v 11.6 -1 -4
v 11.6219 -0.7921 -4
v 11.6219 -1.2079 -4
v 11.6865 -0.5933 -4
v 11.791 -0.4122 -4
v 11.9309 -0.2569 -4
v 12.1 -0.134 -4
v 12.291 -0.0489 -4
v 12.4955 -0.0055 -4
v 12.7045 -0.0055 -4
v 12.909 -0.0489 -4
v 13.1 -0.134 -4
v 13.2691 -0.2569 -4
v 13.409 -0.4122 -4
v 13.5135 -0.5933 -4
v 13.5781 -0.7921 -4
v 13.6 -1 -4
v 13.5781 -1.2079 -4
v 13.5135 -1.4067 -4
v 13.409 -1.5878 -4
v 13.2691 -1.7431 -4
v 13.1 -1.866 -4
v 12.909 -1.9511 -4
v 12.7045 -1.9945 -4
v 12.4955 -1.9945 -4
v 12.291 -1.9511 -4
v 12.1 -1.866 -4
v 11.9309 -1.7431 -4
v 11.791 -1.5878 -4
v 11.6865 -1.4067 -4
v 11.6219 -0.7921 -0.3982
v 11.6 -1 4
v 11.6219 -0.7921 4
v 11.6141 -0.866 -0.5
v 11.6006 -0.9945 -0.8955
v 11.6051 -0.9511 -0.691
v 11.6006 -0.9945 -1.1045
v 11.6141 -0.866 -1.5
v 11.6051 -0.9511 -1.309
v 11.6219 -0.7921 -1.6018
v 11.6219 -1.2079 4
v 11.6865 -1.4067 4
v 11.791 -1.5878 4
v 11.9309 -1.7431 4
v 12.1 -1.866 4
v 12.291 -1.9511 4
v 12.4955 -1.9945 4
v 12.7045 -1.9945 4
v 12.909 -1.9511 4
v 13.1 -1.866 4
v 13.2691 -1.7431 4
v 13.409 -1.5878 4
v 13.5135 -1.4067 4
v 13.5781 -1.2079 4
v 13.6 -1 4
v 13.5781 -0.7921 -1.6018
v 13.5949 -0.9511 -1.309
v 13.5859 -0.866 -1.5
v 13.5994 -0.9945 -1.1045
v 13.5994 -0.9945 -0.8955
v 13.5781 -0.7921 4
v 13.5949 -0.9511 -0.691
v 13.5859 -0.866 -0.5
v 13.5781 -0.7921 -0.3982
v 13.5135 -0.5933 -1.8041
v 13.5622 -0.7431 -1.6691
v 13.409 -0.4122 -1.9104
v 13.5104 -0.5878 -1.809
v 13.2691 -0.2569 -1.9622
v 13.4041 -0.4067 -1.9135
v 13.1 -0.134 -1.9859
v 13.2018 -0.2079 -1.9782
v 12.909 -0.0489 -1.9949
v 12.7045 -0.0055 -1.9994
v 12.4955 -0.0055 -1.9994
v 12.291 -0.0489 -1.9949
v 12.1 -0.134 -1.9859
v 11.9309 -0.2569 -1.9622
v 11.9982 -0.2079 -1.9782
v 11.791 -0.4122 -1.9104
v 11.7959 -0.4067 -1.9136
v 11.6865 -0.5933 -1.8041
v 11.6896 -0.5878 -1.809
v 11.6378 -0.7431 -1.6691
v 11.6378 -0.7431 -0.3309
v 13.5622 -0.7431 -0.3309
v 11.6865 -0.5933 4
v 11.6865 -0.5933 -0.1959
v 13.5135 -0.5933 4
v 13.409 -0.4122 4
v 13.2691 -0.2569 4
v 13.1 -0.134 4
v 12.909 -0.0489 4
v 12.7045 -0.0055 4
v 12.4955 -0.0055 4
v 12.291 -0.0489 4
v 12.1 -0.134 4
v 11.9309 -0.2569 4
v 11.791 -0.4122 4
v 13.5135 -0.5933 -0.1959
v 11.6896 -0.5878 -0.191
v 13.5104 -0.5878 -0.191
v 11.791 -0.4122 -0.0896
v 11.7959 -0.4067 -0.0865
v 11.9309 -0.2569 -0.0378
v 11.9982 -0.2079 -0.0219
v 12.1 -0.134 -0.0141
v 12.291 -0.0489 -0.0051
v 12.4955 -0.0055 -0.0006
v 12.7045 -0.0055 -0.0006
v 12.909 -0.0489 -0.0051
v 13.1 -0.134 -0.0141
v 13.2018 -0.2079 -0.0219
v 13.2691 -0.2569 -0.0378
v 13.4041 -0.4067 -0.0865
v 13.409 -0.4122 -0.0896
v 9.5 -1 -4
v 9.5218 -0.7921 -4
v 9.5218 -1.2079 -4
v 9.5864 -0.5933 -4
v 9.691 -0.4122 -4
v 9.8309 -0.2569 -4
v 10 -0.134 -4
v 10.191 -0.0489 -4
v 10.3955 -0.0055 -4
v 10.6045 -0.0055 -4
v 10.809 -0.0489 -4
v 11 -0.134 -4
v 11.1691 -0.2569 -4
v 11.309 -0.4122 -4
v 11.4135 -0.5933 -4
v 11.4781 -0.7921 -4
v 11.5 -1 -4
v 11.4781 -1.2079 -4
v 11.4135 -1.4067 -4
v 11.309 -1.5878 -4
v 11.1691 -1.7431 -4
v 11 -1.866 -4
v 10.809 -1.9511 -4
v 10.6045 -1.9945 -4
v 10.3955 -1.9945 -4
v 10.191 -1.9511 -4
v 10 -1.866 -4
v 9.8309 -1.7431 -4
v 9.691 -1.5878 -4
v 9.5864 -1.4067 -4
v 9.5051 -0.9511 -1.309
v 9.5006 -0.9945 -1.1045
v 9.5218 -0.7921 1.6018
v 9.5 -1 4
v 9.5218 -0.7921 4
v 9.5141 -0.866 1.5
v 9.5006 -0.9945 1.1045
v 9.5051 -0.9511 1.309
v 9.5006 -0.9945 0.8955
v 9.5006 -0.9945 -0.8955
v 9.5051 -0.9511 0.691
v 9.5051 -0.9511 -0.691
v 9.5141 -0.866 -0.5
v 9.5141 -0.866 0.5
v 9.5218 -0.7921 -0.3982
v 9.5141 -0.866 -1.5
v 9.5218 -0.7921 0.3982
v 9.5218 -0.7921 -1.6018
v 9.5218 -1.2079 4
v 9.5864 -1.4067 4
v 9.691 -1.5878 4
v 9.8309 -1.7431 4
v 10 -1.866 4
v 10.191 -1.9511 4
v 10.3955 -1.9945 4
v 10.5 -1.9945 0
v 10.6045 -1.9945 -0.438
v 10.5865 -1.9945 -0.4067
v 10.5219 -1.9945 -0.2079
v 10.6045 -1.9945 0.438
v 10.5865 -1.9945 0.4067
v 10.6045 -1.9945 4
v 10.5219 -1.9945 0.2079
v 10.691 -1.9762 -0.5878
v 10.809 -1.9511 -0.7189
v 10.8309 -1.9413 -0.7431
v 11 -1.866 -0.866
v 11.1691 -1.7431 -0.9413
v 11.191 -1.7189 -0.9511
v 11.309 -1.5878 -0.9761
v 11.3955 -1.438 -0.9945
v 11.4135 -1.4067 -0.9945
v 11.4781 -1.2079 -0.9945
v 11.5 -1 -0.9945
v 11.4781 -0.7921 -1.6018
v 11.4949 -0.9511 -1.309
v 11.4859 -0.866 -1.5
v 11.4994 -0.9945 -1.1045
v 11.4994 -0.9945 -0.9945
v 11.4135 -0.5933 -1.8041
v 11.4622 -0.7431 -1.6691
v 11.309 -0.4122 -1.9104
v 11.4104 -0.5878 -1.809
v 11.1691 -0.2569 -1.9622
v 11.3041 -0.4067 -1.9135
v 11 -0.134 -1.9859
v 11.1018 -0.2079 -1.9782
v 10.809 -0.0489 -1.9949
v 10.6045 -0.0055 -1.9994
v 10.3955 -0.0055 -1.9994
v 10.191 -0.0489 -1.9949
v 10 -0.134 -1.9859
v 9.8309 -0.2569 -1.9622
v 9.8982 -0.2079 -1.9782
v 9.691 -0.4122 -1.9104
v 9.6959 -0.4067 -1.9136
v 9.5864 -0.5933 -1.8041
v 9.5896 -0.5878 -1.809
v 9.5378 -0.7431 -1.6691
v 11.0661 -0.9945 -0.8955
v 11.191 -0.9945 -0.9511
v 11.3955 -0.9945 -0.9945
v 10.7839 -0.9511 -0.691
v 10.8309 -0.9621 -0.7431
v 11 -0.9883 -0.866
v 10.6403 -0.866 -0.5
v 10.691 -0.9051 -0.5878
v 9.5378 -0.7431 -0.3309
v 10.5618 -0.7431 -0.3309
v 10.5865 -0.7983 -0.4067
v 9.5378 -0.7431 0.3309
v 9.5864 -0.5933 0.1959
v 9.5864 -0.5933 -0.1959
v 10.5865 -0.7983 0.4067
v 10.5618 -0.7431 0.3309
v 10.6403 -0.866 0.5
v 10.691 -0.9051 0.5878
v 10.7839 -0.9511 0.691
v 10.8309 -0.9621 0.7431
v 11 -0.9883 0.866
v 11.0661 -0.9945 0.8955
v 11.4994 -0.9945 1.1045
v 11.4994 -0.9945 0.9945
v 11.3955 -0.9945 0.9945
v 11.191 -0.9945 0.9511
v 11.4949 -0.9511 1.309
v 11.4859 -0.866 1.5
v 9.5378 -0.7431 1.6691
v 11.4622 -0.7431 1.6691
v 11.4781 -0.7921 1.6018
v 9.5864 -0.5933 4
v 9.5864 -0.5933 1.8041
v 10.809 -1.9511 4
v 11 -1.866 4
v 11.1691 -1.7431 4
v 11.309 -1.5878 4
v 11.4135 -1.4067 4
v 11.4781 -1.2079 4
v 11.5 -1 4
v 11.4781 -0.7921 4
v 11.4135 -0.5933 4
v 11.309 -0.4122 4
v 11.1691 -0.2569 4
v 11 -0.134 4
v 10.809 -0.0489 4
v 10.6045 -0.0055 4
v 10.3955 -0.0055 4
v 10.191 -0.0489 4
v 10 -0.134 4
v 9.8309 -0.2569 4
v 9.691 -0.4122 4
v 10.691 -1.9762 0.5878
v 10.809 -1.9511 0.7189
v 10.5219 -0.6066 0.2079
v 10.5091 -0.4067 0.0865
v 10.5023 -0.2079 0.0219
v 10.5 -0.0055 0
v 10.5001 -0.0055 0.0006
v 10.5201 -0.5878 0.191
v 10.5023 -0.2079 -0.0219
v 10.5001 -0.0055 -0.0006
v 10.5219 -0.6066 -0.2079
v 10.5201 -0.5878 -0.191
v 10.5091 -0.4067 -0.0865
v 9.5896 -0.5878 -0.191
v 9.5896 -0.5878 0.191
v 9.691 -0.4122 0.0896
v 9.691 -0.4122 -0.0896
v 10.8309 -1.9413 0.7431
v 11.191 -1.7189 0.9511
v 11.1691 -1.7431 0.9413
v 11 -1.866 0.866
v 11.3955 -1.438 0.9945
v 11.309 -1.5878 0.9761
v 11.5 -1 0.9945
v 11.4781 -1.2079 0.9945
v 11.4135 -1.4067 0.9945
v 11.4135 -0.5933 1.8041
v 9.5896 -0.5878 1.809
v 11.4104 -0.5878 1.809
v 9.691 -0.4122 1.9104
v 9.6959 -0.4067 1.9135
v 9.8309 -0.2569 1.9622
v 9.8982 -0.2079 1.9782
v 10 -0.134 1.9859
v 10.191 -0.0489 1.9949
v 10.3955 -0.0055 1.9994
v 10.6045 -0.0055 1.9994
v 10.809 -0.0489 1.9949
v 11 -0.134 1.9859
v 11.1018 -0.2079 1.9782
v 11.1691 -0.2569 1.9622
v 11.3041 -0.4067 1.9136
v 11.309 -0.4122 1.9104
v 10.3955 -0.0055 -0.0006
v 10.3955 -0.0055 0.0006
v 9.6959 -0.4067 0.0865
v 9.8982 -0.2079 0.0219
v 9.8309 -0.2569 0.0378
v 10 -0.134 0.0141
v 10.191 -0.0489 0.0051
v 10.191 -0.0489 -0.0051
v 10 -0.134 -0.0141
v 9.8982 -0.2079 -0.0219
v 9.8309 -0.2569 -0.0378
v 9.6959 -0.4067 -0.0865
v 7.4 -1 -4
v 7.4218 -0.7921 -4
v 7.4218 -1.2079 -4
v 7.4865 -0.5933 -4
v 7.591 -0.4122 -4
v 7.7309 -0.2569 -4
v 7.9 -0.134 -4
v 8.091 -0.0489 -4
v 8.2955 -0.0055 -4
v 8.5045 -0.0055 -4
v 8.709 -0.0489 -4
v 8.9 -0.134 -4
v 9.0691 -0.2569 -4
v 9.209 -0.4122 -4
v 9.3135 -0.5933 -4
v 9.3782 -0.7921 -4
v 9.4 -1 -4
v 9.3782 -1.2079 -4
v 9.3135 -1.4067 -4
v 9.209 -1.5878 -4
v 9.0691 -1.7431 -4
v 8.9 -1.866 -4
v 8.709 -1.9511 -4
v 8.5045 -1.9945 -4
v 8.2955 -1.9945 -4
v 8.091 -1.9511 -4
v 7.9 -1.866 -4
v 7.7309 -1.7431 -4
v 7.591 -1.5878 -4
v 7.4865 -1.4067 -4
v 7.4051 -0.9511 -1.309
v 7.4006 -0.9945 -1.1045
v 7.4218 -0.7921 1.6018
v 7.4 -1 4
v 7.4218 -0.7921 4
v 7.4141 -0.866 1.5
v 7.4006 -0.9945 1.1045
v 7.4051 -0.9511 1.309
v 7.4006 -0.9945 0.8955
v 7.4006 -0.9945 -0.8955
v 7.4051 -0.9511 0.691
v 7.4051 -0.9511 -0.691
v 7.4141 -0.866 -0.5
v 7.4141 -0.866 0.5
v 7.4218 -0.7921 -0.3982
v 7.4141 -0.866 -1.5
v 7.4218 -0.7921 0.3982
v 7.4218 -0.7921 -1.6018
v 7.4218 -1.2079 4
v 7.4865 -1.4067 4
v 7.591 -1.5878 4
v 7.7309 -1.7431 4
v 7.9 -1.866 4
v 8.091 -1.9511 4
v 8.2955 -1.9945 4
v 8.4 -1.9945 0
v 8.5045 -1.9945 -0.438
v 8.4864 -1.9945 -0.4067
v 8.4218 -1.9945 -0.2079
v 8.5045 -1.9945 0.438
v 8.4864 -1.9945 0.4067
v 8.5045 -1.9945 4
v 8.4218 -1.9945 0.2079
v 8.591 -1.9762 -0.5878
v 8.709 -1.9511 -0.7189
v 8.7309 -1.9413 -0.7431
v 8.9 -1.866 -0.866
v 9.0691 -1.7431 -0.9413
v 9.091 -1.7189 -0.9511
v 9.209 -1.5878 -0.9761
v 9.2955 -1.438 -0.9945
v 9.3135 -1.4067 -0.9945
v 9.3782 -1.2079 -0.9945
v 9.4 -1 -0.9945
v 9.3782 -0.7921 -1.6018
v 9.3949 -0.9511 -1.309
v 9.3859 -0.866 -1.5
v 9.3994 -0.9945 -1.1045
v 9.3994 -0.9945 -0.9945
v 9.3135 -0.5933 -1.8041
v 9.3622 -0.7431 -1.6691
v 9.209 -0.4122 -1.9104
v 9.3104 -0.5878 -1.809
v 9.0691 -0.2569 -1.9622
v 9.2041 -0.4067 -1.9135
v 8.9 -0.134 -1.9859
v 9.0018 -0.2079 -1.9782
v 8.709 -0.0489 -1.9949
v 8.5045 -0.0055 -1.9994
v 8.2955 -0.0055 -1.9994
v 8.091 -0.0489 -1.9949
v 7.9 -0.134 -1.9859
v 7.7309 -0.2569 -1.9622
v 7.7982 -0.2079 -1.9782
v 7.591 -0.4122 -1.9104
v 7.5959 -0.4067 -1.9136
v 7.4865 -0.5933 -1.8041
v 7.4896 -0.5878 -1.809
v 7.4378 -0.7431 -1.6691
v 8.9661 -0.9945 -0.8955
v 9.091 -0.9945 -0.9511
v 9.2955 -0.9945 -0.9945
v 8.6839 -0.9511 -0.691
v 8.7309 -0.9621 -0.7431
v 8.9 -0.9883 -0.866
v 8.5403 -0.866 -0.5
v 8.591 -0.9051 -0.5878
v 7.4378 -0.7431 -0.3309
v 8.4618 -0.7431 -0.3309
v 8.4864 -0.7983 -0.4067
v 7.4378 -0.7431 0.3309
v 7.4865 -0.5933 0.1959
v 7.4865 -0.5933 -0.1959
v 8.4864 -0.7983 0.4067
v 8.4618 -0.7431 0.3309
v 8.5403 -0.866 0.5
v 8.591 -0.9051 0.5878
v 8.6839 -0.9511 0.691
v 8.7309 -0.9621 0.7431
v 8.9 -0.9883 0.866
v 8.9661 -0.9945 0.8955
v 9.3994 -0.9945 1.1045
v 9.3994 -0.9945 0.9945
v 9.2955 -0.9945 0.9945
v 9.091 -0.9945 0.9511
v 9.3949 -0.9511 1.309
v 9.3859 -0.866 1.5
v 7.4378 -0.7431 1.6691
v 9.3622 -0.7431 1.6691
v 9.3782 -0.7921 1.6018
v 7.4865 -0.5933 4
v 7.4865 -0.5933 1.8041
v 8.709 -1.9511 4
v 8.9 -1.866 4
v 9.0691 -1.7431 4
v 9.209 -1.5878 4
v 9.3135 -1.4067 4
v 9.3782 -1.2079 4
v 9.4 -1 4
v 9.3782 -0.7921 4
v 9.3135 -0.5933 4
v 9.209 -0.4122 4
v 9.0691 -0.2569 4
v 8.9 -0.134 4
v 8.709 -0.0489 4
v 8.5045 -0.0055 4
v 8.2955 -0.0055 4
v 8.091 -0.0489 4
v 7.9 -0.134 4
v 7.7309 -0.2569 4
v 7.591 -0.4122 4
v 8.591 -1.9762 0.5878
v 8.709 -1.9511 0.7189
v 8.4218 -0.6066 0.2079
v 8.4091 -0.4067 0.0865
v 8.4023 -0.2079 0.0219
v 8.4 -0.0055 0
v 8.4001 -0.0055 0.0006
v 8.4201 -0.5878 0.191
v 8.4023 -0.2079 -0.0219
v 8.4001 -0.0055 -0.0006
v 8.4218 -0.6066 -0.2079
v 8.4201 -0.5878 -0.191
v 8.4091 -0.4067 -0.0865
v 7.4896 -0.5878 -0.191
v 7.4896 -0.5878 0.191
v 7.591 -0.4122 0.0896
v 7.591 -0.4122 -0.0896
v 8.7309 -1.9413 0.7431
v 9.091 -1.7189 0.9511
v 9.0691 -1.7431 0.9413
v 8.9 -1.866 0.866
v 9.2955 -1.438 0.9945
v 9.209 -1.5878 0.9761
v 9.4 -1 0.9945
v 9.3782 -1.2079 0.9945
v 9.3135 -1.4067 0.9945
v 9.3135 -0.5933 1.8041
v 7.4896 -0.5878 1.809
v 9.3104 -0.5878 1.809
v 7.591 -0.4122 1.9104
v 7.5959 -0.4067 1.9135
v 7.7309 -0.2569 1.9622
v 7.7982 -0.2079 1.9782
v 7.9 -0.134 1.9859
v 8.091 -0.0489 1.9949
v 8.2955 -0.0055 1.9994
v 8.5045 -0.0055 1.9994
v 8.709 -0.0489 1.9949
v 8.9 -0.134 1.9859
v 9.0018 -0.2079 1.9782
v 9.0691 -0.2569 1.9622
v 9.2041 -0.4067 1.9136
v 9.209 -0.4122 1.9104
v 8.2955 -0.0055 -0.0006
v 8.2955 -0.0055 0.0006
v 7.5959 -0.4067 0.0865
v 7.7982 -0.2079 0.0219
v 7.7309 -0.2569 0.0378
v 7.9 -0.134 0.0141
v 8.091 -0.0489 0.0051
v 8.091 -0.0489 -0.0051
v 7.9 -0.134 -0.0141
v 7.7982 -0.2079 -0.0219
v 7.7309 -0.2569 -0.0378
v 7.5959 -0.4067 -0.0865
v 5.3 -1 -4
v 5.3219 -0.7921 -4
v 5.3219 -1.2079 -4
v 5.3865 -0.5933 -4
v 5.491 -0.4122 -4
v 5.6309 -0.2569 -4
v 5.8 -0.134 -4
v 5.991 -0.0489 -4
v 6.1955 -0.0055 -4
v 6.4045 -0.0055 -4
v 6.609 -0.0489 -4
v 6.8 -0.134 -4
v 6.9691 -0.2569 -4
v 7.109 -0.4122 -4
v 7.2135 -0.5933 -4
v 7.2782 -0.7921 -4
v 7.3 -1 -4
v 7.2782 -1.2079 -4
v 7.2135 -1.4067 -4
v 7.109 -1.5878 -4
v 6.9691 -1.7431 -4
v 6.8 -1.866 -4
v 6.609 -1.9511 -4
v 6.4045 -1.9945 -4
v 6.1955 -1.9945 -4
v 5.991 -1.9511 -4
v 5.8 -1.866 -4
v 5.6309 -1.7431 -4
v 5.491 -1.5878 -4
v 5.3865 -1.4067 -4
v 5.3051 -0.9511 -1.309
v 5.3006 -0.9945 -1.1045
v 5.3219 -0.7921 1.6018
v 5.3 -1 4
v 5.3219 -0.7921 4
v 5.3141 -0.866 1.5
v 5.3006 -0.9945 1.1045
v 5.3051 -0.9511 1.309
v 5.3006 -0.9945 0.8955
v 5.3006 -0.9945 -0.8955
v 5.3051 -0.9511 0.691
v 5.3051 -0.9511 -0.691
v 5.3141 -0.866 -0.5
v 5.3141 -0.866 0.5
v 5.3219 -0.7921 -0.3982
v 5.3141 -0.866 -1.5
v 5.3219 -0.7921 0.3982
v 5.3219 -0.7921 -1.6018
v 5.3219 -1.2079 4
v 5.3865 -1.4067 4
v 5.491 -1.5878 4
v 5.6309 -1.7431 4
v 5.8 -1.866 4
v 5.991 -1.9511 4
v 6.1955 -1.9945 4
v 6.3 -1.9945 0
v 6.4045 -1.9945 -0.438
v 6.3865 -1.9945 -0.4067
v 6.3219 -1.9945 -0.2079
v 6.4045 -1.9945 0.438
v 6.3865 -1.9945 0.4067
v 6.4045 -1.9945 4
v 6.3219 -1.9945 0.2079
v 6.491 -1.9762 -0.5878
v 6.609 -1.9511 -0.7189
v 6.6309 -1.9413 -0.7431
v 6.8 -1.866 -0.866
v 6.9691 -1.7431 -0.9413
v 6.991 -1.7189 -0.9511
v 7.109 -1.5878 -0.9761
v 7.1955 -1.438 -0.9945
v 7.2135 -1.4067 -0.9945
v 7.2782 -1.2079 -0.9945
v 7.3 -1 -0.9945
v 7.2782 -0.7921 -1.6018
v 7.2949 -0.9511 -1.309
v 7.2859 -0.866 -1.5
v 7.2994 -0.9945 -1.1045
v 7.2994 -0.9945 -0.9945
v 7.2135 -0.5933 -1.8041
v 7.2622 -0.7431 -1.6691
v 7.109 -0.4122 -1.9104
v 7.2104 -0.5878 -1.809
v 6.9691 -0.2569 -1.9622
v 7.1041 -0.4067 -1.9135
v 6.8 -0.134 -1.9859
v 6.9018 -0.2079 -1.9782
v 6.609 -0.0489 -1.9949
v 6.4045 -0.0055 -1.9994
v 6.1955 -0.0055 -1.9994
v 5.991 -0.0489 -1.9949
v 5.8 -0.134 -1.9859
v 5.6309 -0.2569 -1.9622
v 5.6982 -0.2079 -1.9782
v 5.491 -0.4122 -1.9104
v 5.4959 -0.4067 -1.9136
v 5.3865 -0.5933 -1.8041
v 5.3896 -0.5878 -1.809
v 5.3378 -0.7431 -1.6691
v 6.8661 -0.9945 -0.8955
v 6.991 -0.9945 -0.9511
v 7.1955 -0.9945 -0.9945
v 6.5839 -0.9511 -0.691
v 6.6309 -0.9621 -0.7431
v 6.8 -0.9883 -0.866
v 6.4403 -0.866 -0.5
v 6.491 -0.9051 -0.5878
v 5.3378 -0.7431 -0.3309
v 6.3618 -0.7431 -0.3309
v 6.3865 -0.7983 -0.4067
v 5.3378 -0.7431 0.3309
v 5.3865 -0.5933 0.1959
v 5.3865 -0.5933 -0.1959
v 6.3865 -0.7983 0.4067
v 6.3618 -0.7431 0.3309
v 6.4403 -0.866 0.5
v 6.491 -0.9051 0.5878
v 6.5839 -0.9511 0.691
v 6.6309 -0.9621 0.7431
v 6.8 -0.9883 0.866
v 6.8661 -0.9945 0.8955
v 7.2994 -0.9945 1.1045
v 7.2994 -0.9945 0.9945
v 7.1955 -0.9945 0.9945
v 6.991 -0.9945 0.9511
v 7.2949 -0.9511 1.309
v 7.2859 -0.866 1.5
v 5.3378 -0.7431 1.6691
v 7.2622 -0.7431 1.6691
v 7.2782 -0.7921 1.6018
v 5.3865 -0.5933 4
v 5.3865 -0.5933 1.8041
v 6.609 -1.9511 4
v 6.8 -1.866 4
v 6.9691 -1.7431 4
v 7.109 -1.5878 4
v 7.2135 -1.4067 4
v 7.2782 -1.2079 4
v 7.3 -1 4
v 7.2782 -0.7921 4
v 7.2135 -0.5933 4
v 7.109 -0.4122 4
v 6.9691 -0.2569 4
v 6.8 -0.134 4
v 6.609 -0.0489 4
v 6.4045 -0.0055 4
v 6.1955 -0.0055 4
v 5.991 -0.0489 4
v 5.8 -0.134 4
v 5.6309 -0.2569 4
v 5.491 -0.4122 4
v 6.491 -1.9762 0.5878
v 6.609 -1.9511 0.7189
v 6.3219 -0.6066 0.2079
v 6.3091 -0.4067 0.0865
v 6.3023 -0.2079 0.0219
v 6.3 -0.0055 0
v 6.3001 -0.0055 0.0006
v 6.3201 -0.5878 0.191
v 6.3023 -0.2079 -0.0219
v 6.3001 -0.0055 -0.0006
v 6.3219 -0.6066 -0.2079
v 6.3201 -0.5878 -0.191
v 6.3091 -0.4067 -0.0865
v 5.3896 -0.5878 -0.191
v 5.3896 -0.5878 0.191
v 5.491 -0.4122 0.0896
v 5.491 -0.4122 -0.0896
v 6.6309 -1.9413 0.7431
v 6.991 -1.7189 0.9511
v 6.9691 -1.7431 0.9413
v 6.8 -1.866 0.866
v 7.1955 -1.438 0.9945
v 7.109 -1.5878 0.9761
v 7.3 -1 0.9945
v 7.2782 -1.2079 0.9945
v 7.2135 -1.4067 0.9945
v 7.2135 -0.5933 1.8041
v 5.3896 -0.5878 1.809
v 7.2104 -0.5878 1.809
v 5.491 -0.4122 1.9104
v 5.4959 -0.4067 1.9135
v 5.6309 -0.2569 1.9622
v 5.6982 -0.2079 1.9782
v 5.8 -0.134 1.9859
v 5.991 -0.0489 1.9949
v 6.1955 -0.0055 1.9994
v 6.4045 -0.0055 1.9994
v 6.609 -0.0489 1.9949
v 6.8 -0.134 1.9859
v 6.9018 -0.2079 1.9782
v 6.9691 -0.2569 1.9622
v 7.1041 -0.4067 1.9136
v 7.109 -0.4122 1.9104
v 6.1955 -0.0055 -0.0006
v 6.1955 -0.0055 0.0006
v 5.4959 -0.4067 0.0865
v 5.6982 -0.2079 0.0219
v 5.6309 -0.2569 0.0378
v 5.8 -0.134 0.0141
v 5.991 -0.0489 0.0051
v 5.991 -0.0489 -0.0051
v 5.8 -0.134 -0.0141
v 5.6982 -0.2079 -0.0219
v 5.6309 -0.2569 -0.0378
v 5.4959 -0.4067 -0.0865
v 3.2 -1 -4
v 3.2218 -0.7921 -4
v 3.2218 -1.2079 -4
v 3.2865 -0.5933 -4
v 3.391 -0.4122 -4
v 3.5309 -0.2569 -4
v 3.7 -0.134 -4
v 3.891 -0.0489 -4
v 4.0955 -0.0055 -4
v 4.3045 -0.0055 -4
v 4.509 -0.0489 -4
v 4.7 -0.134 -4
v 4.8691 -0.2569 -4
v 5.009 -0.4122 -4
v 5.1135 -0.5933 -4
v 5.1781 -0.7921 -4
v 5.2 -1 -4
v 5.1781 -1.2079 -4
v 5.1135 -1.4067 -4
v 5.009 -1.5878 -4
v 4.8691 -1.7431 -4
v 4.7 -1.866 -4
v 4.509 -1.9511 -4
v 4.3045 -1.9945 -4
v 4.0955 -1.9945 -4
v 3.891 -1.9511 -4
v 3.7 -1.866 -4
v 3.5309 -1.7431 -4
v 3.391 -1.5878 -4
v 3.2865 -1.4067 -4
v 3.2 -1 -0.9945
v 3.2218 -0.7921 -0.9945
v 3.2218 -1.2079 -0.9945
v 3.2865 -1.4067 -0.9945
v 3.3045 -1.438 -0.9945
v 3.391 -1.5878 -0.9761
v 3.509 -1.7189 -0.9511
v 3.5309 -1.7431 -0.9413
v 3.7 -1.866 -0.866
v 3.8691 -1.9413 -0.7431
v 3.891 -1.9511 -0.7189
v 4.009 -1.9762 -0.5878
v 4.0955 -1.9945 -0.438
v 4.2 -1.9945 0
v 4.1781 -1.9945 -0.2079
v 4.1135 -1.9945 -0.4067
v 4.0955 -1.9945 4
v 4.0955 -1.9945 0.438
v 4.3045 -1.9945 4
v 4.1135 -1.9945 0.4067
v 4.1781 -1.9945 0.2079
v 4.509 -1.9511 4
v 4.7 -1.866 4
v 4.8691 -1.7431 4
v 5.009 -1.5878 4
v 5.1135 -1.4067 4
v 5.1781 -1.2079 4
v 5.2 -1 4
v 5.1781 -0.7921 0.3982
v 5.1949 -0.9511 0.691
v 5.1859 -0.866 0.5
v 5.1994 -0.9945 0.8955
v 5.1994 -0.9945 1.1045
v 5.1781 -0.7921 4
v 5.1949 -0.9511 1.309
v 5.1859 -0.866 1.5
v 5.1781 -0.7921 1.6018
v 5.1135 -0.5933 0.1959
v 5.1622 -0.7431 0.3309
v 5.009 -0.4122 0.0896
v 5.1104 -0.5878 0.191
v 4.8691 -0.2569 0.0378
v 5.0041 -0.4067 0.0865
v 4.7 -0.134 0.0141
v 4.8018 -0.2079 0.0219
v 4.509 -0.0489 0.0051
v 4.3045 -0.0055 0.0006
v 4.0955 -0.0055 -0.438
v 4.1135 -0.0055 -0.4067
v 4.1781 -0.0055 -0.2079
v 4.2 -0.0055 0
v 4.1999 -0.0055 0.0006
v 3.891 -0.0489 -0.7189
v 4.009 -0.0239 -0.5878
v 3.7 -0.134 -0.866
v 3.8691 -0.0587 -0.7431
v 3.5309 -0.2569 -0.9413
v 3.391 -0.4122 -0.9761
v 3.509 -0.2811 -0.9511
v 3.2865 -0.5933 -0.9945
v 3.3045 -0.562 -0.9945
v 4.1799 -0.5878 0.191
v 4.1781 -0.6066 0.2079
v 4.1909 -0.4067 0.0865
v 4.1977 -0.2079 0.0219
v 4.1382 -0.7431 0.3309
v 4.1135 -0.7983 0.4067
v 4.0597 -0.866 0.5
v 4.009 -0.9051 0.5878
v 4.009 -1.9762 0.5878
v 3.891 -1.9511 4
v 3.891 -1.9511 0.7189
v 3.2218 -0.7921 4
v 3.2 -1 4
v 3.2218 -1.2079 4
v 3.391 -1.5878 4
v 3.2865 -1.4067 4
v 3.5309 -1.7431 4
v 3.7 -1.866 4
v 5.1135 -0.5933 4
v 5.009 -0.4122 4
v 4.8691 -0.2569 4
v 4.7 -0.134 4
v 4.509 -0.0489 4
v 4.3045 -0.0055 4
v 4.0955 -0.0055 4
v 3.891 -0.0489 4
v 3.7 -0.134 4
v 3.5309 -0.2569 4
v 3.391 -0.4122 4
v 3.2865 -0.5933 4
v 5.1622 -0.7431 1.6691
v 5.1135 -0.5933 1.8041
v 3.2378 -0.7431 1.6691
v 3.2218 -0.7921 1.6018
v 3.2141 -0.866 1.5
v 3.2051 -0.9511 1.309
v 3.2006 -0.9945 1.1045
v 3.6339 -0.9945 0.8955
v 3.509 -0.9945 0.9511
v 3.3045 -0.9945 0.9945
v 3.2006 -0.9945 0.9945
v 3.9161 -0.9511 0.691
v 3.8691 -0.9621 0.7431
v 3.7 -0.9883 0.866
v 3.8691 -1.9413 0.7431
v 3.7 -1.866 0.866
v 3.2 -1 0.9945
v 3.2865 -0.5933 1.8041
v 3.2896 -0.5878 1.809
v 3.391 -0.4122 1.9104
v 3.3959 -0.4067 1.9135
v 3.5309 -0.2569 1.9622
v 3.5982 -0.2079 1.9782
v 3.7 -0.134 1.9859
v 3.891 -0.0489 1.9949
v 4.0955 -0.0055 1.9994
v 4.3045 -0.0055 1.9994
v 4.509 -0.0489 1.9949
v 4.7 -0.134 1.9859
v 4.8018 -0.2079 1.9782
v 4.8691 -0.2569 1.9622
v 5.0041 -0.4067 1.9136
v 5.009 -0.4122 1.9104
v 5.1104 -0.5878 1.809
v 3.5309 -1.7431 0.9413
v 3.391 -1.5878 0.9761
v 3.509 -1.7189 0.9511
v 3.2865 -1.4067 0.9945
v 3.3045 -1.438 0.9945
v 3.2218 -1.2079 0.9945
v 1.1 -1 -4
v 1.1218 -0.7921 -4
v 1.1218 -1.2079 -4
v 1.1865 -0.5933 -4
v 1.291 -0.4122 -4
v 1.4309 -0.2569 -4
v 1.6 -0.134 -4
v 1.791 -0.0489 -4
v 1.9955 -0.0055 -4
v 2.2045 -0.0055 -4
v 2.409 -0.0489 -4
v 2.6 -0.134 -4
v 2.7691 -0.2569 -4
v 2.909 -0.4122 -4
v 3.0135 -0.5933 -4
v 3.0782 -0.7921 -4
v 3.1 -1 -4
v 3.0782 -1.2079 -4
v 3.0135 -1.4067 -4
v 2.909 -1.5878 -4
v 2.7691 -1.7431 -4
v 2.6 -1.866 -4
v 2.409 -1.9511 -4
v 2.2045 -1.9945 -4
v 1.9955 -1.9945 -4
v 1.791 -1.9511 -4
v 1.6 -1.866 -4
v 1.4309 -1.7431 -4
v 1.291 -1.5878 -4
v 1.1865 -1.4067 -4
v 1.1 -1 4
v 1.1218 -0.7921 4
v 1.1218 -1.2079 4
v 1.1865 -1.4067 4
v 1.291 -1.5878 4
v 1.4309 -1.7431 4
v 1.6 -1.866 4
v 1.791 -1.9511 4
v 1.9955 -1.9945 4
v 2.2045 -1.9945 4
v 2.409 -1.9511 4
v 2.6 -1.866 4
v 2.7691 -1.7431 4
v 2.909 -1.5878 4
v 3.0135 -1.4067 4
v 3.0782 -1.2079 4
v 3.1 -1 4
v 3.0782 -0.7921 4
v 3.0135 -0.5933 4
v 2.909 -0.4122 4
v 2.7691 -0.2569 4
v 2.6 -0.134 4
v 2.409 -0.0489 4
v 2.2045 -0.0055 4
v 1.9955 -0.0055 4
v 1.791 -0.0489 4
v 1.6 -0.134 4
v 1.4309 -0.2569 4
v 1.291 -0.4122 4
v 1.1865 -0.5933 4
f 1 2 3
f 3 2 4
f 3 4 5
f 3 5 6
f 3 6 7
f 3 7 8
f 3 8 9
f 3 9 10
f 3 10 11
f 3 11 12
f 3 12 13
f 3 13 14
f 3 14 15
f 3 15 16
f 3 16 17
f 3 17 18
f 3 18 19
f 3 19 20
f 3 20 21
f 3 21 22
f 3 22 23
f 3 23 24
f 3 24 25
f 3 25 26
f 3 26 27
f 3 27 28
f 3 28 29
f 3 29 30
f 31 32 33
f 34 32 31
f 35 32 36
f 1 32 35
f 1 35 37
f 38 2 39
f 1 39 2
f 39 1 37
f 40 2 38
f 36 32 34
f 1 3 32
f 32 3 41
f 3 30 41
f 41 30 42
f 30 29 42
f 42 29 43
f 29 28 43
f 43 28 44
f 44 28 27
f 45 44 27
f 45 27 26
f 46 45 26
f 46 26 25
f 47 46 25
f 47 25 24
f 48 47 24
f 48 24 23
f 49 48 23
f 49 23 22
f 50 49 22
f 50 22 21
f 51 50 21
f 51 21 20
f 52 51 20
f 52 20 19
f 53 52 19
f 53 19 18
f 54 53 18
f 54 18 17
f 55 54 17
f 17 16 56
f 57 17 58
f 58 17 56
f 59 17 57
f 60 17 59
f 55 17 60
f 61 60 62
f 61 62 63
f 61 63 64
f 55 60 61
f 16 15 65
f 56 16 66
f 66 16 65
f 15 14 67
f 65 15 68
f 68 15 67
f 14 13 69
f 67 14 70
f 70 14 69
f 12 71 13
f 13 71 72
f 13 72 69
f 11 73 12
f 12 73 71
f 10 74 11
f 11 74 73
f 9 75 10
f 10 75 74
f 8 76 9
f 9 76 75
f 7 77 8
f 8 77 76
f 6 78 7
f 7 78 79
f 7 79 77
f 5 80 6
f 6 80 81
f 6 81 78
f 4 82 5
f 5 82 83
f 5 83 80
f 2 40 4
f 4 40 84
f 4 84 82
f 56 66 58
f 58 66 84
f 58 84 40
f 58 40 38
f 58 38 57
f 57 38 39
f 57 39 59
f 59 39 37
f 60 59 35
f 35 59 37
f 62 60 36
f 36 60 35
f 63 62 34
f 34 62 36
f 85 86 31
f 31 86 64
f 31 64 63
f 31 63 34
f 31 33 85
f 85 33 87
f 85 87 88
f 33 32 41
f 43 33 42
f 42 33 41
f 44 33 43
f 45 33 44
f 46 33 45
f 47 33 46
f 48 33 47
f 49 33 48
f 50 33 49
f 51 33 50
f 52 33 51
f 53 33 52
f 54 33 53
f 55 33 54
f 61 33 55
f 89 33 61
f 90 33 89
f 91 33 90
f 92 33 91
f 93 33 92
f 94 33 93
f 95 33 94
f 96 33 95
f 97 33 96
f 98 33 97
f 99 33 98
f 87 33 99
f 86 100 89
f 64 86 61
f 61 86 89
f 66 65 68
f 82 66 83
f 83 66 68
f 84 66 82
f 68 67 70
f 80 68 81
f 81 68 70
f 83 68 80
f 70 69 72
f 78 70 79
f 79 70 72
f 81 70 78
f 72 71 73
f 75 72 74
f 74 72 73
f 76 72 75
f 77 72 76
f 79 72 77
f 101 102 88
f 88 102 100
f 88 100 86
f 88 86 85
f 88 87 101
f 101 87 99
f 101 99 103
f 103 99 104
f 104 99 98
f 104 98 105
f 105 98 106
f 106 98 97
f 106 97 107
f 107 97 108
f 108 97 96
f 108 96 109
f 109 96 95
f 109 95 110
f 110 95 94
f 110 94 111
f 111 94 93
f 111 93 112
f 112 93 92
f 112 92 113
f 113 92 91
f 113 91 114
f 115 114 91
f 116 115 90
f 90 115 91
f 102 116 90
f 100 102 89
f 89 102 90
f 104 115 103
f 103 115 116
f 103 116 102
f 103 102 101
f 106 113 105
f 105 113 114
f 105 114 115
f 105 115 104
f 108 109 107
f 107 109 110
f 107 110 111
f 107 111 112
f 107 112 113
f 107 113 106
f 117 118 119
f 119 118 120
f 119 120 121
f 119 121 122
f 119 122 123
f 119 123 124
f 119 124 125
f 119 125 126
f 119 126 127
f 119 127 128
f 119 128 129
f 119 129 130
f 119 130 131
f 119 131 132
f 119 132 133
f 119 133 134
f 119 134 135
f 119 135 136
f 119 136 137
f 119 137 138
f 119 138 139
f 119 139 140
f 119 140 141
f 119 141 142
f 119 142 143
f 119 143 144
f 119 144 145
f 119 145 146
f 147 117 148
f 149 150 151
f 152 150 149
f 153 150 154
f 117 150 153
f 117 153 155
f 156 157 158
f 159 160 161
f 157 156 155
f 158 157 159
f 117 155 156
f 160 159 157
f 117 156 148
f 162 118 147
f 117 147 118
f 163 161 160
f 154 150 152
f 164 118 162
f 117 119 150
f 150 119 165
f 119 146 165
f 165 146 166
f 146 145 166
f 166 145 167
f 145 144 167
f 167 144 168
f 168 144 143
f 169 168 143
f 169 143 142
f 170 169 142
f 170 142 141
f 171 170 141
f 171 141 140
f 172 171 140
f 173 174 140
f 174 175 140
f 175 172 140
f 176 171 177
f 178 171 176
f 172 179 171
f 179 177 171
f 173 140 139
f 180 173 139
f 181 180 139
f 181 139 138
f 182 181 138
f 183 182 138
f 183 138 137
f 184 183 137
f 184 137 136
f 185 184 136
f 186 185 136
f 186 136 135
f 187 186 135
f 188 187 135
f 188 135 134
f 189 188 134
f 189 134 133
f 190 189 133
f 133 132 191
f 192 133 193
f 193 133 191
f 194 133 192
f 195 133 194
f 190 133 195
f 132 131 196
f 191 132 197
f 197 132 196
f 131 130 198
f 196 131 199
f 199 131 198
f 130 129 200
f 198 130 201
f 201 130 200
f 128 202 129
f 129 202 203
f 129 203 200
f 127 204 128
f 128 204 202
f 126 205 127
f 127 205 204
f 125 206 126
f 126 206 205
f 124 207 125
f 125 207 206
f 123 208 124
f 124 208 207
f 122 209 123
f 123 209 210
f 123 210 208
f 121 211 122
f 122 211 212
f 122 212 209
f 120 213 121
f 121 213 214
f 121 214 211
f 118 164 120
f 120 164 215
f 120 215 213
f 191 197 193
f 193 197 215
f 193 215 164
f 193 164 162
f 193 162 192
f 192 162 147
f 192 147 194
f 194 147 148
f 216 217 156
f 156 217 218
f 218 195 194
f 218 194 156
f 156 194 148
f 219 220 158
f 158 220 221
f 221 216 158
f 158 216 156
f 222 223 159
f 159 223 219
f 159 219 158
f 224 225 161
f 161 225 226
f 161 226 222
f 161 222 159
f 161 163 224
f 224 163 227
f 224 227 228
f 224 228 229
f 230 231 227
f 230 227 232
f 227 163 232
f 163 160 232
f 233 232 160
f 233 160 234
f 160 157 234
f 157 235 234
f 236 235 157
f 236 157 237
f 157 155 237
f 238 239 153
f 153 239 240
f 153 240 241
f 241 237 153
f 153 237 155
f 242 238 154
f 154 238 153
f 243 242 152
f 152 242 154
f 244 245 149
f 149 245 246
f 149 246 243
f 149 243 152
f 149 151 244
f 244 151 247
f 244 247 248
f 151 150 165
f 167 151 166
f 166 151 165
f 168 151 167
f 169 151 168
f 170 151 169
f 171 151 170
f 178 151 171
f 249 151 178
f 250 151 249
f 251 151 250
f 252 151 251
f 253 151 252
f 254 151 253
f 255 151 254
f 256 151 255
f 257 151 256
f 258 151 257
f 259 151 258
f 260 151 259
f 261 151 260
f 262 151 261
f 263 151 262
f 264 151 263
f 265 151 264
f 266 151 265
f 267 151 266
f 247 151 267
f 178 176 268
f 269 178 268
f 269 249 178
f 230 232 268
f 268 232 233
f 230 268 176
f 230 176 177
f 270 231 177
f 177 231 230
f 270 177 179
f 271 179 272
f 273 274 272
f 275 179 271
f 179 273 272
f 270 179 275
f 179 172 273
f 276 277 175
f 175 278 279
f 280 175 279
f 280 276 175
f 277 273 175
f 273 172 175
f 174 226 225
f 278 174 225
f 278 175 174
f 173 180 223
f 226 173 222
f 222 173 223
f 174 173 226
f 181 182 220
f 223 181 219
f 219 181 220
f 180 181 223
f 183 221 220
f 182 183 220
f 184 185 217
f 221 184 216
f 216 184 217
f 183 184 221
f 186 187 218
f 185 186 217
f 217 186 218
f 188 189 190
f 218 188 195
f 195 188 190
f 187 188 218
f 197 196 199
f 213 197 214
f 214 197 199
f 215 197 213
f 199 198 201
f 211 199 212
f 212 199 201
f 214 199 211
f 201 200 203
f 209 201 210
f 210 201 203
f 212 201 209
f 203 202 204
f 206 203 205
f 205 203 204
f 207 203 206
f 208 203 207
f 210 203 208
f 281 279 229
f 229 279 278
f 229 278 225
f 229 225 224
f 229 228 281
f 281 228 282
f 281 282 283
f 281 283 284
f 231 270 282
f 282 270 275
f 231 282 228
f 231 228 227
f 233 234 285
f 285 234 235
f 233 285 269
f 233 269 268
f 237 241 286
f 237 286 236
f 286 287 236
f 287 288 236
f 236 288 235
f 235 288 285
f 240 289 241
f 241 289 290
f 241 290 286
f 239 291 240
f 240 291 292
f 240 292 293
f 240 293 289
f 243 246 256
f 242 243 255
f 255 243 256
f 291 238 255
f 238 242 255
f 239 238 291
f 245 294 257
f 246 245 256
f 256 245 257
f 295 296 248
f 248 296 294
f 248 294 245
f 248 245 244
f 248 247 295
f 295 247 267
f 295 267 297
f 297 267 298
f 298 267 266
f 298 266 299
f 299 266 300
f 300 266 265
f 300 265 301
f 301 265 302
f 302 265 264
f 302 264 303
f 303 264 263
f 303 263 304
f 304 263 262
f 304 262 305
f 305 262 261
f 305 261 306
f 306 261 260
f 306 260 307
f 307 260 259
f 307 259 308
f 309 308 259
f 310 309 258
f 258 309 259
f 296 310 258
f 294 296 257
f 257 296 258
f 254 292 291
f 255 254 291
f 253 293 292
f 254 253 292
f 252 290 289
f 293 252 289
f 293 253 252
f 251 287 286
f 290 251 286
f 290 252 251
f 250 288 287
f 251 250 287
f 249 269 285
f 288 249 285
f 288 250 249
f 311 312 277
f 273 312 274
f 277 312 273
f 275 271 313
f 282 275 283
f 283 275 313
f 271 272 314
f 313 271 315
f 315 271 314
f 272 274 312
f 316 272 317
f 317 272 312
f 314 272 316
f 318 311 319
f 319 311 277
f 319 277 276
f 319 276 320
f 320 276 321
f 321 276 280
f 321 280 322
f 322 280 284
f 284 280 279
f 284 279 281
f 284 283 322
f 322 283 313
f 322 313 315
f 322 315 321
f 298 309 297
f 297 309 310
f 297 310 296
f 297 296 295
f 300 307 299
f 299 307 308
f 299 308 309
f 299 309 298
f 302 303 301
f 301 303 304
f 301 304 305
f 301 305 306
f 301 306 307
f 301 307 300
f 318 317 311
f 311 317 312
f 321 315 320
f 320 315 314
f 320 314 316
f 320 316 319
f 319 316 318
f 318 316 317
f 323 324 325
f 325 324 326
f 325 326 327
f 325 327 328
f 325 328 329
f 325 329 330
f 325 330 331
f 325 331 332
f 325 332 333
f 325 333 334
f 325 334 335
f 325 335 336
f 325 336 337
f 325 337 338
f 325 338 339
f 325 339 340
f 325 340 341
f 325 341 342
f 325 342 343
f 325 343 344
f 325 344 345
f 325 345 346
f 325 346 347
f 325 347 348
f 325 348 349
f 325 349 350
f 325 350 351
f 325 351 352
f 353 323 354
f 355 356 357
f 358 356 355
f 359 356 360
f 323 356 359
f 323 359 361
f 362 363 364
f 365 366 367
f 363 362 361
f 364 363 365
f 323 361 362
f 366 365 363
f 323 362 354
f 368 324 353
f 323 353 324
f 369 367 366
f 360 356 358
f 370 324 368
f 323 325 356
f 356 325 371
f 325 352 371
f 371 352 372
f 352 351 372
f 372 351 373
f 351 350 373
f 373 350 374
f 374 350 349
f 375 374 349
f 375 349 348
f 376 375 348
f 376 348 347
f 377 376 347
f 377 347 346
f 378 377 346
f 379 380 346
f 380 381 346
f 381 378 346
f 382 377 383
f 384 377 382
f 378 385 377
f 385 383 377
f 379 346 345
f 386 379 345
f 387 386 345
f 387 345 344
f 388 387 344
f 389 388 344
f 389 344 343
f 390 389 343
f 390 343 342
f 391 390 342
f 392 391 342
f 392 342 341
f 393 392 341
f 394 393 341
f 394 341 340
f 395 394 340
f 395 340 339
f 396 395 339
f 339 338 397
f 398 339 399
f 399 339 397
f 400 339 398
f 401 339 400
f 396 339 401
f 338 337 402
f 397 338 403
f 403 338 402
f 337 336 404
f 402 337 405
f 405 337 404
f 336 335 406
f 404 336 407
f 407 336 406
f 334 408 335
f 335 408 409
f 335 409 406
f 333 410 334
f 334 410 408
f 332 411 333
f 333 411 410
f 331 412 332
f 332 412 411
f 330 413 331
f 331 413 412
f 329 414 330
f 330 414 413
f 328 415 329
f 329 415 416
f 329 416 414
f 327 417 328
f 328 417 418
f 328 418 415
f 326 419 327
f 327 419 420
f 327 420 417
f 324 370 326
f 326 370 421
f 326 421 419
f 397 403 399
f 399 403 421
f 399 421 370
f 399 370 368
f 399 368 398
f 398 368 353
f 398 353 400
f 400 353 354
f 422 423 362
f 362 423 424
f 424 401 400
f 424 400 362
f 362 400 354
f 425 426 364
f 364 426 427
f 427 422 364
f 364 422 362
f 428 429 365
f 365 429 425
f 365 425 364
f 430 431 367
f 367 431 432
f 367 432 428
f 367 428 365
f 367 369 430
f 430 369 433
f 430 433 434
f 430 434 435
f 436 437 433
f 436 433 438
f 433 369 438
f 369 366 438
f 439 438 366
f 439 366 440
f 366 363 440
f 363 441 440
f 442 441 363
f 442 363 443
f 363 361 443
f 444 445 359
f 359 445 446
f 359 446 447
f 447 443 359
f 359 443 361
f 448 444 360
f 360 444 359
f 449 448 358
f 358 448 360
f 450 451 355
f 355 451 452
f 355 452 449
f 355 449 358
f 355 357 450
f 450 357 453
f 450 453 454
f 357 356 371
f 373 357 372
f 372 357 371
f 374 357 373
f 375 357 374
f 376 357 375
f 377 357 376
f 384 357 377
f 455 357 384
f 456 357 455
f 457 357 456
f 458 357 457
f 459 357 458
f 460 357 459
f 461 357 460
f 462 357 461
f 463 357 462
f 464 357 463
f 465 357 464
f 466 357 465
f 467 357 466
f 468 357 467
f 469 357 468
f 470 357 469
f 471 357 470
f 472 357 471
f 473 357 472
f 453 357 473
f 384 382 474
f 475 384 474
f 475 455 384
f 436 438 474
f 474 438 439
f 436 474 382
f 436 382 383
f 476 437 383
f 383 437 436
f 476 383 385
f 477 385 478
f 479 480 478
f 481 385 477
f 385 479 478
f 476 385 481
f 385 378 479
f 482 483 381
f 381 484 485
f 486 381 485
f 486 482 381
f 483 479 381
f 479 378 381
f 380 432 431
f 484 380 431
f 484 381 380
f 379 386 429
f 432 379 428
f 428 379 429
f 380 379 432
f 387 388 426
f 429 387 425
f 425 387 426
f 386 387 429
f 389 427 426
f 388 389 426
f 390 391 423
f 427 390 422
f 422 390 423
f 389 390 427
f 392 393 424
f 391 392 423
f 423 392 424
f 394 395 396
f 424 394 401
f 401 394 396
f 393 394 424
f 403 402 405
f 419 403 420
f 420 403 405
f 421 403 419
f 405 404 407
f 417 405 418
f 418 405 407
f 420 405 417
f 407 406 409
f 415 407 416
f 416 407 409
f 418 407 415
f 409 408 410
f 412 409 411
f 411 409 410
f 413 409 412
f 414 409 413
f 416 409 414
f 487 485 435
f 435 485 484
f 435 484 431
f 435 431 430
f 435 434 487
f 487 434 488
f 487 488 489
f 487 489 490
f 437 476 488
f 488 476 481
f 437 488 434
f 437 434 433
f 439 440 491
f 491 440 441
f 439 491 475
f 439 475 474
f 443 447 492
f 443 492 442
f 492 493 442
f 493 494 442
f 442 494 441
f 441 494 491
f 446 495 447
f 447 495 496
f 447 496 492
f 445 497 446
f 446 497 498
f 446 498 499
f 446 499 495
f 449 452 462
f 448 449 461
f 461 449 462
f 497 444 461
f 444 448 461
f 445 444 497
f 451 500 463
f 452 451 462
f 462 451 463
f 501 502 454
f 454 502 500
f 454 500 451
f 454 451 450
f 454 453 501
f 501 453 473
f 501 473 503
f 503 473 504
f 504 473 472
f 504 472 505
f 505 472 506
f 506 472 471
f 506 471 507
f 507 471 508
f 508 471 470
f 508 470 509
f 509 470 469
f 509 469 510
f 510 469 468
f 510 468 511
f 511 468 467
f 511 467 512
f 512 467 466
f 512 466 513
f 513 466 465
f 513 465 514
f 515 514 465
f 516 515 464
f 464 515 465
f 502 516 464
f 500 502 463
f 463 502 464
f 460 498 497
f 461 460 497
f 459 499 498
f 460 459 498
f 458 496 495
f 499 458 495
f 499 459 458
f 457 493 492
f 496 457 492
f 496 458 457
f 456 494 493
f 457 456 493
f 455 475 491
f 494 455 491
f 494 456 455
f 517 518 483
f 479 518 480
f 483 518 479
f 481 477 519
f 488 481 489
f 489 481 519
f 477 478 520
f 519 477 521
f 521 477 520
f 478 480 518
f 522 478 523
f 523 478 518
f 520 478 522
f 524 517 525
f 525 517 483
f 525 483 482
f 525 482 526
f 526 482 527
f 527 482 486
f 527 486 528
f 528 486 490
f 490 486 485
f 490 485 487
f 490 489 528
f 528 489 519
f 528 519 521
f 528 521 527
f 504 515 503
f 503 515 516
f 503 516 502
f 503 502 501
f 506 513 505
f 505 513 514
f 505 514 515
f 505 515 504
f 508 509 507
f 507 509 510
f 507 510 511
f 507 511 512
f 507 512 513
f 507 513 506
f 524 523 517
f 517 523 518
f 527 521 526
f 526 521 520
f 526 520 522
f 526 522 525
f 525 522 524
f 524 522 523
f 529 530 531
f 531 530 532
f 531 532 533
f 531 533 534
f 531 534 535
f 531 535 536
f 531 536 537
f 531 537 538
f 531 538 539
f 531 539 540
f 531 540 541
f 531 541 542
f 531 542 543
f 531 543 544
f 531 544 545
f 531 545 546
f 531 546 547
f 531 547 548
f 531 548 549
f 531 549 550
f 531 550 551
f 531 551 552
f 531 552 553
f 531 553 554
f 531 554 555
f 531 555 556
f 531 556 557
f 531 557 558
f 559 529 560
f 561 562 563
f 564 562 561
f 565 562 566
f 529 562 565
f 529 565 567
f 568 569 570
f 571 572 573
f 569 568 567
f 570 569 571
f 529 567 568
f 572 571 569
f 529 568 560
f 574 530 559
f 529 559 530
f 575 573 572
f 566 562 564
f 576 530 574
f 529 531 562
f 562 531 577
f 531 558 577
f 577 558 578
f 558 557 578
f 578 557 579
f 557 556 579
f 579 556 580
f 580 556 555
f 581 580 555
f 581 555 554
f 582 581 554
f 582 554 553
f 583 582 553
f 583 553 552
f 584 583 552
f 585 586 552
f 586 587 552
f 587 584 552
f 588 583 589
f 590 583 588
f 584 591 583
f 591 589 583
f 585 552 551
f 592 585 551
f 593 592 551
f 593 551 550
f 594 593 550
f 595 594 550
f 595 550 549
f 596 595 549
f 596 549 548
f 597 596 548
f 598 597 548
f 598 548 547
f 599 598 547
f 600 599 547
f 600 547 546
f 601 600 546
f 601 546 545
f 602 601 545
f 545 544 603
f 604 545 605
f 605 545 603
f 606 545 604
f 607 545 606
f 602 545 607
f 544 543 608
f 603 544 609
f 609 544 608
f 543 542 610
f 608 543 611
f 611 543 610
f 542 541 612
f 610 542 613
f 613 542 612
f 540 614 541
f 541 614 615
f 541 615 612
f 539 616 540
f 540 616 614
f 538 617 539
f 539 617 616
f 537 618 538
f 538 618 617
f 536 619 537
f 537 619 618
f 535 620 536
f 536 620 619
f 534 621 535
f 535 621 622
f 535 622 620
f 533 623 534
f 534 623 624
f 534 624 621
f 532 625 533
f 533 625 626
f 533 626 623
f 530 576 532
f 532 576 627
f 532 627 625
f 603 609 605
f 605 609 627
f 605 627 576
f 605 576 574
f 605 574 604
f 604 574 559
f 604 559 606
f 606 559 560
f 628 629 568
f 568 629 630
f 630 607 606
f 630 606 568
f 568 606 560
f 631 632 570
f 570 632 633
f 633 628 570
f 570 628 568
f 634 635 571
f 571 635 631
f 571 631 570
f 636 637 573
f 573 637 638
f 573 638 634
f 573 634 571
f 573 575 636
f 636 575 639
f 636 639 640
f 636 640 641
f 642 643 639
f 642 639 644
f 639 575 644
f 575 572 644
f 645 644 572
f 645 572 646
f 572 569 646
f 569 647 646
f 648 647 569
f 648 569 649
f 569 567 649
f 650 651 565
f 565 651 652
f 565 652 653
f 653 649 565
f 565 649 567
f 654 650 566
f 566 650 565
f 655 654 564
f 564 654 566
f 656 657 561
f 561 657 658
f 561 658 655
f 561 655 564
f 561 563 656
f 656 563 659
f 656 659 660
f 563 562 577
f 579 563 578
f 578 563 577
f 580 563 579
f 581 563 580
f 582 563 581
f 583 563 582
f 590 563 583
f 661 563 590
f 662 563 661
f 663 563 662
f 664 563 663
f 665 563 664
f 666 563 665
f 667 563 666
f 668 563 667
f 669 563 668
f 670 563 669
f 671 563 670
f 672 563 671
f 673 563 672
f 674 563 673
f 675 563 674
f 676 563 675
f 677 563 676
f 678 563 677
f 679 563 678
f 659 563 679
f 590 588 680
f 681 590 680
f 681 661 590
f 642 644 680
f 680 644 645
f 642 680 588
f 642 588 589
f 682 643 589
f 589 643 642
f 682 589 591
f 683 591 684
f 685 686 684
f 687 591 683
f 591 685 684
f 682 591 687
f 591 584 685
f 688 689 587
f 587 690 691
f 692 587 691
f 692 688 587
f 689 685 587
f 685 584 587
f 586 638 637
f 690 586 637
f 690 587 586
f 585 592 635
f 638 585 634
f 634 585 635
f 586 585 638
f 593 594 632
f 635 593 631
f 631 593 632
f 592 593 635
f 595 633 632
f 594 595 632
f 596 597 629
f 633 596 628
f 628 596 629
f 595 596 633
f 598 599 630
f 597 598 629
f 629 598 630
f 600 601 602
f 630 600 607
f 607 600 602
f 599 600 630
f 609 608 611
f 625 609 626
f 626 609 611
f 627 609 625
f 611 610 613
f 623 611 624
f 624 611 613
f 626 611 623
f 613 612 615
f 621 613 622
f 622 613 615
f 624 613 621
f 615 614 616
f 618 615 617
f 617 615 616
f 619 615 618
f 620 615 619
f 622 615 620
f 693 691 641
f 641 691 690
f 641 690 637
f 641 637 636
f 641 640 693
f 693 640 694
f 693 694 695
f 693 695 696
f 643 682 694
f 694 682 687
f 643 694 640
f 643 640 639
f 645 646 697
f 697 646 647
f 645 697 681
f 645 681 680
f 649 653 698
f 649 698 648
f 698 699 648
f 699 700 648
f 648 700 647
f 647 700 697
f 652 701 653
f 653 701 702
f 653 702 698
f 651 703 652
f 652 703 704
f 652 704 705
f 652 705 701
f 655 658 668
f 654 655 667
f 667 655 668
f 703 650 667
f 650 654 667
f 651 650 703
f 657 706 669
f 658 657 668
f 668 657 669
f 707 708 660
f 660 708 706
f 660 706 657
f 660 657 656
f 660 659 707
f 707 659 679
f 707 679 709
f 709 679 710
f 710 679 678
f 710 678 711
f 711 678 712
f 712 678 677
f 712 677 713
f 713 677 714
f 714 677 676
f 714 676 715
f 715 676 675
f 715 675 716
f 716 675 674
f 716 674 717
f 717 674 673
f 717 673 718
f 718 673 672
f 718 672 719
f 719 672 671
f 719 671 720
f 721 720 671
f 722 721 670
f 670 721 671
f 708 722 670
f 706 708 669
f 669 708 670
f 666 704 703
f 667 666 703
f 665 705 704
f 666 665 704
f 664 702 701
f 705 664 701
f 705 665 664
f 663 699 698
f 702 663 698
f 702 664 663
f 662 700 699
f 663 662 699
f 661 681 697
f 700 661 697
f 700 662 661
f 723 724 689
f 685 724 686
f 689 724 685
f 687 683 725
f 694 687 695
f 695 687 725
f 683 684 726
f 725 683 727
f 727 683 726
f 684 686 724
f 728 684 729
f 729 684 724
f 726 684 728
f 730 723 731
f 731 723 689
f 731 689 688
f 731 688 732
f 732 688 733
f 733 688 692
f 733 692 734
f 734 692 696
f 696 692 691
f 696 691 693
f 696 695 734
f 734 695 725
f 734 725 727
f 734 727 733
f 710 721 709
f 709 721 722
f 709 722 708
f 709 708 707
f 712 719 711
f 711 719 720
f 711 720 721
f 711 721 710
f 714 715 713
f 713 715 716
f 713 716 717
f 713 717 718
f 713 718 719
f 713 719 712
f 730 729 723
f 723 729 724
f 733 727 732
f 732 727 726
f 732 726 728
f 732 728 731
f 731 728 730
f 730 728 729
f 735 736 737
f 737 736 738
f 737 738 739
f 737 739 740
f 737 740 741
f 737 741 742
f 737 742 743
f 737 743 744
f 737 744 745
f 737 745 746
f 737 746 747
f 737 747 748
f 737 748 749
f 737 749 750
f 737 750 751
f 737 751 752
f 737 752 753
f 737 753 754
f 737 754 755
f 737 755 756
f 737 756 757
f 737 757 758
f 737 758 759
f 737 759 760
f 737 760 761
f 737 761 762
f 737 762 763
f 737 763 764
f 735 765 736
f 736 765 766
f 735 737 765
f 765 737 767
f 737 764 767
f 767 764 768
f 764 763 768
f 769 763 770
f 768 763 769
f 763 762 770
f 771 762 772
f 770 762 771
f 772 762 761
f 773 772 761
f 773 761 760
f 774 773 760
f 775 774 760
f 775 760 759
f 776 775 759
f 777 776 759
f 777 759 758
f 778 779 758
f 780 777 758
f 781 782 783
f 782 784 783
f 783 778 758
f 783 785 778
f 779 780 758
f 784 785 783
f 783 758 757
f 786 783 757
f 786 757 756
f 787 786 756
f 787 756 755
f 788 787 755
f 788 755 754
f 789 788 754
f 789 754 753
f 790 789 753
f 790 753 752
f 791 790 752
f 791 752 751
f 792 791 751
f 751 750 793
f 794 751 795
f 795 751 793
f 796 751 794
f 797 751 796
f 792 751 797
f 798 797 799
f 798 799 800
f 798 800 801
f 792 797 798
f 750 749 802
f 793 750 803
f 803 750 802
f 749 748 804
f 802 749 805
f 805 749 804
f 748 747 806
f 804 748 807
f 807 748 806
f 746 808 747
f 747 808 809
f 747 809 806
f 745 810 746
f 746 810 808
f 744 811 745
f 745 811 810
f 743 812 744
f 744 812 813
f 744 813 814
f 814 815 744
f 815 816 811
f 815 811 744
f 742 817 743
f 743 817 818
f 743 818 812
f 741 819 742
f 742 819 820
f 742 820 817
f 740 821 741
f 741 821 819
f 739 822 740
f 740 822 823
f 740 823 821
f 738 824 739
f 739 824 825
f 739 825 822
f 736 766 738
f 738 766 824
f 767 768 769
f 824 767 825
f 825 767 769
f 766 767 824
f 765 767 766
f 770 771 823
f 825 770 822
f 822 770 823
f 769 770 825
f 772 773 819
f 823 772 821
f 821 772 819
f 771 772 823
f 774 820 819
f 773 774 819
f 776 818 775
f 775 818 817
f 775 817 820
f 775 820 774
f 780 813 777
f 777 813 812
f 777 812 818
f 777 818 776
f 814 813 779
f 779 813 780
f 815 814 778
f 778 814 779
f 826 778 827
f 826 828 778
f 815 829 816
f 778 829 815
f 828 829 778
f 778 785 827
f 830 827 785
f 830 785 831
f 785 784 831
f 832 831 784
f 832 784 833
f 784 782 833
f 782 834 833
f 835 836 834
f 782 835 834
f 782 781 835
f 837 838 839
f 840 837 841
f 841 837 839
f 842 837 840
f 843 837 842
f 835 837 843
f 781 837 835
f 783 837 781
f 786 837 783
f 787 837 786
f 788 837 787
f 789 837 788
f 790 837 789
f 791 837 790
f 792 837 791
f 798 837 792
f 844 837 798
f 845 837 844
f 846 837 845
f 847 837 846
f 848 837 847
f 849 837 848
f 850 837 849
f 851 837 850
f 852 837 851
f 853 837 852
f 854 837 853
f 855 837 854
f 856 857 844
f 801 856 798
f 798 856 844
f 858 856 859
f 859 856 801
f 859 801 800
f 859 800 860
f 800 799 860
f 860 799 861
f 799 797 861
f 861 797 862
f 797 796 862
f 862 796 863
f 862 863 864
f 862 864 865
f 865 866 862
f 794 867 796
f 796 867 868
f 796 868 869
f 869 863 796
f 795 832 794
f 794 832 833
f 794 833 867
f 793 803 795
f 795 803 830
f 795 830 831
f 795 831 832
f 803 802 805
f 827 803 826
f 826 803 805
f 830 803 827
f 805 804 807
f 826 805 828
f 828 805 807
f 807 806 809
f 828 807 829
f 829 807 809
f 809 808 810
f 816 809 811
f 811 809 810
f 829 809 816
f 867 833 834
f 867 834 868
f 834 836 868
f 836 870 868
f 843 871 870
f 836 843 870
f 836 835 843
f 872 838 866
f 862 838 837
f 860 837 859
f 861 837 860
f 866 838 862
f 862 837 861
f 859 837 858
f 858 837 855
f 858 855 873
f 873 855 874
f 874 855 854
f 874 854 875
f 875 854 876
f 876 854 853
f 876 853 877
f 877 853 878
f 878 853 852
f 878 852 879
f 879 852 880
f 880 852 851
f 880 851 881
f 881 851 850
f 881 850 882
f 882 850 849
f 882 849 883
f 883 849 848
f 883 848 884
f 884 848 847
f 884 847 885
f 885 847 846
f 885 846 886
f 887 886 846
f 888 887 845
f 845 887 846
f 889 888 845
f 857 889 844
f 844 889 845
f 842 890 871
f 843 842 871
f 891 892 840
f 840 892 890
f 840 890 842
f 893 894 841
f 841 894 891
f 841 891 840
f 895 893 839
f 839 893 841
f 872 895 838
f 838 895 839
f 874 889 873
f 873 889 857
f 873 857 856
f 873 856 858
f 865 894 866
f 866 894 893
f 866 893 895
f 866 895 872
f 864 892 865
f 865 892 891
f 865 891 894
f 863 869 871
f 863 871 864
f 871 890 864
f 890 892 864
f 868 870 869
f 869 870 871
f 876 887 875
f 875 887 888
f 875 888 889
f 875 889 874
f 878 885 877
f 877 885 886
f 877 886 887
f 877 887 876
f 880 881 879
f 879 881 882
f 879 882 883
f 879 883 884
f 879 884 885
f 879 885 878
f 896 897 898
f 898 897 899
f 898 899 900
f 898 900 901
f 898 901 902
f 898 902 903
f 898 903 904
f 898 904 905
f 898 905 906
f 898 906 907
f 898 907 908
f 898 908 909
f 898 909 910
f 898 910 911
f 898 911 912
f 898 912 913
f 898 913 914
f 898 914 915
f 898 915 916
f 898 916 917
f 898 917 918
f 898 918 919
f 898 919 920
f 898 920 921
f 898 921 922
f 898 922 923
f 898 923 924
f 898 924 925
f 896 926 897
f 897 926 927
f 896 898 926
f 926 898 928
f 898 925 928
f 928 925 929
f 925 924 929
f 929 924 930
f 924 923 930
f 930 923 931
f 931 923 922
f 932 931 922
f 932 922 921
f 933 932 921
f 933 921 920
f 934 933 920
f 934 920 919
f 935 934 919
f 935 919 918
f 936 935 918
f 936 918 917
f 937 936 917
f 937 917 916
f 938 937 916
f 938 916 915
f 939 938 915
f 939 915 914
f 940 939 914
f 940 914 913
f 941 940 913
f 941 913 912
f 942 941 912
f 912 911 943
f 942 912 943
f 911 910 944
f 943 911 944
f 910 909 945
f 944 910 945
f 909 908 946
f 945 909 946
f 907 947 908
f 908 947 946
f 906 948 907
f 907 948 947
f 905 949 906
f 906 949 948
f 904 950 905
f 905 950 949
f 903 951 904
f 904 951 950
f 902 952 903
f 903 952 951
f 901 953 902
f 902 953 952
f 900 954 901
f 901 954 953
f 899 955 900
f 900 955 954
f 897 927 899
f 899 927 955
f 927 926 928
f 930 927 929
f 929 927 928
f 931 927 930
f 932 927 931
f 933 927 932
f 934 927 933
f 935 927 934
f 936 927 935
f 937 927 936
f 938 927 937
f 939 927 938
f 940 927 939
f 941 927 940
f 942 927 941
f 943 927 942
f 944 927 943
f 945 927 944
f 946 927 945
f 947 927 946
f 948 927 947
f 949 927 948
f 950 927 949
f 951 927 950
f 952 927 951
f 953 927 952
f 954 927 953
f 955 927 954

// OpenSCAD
R = 1;
L = R * 8;

module c(tr) {
  translate(tr[0]) rotate(tr[1])
    cylinder($fs=0.1,h=L,r=R,center=true);
};

z1 = [[ 0,-R, 0], [ 0, 0,0]];
z2 = [[ 0, R, 0], [ 0, 0,0]];
x1 = [[ 0, 0,-R], [ 0,90,0]];
x2 = [[ 0, 0, R], [ 0,90,0]];
y1 = [[-R, 0, 0], [90, 0,0]];
y2 = [[ R, 0, 0], [90, 0,0]];

/*c(z1);
c(z2);
c(x1);
c(x2);
c(y1);
c(y2);
*/
o = R*2.1;
translate([o*6,0,0])
  difference() {c(z1); c(x1);};
translate([o*5,0,0])
  difference() {c(z1); c(x1); c(x2); c(y2);};
translate([o*4,0,0])
  difference() {c(z1); c(x1); c(x2); c(y2);};
translate([o*3,0,0])
  difference() {c(z1); c(x1); c(x2); c(y2);};
translate([o*2,0,0])
  difference() {c(z1); c(x2); c(y1);};
translate([o*1,0,0])
  c(z1);
